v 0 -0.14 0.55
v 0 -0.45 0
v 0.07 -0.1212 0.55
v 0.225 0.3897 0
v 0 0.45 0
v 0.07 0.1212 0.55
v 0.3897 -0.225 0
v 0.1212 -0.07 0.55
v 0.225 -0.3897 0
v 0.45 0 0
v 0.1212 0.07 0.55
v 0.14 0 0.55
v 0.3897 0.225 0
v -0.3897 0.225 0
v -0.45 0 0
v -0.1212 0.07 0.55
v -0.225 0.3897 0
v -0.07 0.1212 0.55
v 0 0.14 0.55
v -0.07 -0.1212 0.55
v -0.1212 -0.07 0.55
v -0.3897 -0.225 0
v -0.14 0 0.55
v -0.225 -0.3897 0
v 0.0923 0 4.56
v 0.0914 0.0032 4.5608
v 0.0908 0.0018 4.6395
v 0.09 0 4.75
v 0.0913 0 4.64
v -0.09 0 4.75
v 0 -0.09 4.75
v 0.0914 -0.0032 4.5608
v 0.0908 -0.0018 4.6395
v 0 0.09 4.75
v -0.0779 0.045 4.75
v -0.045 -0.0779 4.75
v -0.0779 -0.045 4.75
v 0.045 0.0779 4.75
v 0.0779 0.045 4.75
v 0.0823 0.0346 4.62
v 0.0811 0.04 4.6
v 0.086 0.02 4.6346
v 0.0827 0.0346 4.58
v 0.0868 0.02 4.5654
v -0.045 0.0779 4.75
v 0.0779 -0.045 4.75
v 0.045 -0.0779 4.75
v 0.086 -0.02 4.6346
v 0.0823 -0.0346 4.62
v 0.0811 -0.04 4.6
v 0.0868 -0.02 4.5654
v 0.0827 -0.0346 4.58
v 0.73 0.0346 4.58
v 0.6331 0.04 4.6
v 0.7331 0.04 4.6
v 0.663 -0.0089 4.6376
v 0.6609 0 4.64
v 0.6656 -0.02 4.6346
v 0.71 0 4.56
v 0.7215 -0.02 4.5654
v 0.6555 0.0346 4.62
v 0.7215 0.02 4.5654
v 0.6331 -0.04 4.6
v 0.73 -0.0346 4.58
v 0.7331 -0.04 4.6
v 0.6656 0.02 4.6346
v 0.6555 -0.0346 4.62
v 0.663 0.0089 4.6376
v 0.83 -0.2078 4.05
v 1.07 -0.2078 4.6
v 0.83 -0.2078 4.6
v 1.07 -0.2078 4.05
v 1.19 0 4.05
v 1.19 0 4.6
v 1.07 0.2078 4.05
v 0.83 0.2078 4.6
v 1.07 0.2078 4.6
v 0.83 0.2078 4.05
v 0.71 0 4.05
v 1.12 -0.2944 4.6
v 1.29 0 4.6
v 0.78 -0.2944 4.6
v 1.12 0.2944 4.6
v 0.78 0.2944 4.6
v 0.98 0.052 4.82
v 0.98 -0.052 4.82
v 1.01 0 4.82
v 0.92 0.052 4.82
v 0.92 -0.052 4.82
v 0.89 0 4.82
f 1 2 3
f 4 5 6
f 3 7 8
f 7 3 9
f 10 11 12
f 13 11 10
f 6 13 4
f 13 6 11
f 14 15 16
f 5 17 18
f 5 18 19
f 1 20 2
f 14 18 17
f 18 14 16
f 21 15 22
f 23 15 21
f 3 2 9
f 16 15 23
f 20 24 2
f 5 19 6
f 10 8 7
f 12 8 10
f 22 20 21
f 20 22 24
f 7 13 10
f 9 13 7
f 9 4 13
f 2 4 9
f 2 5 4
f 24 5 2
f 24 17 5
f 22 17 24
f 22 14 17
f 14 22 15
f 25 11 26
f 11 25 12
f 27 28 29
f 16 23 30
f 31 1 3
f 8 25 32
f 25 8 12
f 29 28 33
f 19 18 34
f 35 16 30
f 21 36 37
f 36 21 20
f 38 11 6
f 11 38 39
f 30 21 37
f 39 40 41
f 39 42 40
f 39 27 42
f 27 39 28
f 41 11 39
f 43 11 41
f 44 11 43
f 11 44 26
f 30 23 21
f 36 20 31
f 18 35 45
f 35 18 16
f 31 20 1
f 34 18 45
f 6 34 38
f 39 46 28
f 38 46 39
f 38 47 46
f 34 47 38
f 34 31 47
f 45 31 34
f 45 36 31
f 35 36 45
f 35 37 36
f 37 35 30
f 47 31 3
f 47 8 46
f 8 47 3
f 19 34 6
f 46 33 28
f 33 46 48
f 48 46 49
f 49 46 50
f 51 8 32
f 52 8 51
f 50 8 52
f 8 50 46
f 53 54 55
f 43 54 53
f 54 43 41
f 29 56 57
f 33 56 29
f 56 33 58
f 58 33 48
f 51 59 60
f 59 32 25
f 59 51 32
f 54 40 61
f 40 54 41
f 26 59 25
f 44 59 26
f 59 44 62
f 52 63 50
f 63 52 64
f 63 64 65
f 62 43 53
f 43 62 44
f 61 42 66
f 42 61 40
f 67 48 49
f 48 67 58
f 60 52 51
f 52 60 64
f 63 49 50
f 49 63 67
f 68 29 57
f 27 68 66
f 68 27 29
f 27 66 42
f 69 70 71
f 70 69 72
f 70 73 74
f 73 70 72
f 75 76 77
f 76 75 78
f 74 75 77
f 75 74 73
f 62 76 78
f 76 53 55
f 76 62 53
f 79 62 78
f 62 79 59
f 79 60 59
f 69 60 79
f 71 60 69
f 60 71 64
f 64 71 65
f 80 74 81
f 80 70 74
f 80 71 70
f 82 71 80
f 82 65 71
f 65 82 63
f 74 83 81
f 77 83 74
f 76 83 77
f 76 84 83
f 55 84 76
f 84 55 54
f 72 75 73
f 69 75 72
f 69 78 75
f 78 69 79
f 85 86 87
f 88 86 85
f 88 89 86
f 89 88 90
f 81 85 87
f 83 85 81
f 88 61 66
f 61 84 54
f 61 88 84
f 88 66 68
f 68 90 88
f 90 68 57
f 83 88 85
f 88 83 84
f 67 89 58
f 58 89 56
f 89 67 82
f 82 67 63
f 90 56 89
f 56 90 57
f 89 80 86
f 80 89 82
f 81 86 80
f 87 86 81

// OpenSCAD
// lamp_post.scad

module lamp_post() {
    // Pedestal
    cylinder(h=0.55, r1=0.45, r2=0.14, $fn=12);
    
    // Post
    translate([0, 0, 0.55])
    cylinder(h=4.2, r1=0.14, r2=0.09, $fn=12);
    
    // Arm
    translate([0, 0, 4.6])
    rotate([0, 90, 0])
    cylinder(h=0.95, r=0.04, $fn=12);
    
    // Lantern head
    translate([0.95, 0, 4.6 - 0.55])
    cylinder(h=0.55, r=0.24, $fn=6);
    
    // Cone cap
    translate([0.95, 0, 4.6])
    cylinder(h=0.22, r1=0.34, r2=0.06, $fn=6);
}

lamp_post();
